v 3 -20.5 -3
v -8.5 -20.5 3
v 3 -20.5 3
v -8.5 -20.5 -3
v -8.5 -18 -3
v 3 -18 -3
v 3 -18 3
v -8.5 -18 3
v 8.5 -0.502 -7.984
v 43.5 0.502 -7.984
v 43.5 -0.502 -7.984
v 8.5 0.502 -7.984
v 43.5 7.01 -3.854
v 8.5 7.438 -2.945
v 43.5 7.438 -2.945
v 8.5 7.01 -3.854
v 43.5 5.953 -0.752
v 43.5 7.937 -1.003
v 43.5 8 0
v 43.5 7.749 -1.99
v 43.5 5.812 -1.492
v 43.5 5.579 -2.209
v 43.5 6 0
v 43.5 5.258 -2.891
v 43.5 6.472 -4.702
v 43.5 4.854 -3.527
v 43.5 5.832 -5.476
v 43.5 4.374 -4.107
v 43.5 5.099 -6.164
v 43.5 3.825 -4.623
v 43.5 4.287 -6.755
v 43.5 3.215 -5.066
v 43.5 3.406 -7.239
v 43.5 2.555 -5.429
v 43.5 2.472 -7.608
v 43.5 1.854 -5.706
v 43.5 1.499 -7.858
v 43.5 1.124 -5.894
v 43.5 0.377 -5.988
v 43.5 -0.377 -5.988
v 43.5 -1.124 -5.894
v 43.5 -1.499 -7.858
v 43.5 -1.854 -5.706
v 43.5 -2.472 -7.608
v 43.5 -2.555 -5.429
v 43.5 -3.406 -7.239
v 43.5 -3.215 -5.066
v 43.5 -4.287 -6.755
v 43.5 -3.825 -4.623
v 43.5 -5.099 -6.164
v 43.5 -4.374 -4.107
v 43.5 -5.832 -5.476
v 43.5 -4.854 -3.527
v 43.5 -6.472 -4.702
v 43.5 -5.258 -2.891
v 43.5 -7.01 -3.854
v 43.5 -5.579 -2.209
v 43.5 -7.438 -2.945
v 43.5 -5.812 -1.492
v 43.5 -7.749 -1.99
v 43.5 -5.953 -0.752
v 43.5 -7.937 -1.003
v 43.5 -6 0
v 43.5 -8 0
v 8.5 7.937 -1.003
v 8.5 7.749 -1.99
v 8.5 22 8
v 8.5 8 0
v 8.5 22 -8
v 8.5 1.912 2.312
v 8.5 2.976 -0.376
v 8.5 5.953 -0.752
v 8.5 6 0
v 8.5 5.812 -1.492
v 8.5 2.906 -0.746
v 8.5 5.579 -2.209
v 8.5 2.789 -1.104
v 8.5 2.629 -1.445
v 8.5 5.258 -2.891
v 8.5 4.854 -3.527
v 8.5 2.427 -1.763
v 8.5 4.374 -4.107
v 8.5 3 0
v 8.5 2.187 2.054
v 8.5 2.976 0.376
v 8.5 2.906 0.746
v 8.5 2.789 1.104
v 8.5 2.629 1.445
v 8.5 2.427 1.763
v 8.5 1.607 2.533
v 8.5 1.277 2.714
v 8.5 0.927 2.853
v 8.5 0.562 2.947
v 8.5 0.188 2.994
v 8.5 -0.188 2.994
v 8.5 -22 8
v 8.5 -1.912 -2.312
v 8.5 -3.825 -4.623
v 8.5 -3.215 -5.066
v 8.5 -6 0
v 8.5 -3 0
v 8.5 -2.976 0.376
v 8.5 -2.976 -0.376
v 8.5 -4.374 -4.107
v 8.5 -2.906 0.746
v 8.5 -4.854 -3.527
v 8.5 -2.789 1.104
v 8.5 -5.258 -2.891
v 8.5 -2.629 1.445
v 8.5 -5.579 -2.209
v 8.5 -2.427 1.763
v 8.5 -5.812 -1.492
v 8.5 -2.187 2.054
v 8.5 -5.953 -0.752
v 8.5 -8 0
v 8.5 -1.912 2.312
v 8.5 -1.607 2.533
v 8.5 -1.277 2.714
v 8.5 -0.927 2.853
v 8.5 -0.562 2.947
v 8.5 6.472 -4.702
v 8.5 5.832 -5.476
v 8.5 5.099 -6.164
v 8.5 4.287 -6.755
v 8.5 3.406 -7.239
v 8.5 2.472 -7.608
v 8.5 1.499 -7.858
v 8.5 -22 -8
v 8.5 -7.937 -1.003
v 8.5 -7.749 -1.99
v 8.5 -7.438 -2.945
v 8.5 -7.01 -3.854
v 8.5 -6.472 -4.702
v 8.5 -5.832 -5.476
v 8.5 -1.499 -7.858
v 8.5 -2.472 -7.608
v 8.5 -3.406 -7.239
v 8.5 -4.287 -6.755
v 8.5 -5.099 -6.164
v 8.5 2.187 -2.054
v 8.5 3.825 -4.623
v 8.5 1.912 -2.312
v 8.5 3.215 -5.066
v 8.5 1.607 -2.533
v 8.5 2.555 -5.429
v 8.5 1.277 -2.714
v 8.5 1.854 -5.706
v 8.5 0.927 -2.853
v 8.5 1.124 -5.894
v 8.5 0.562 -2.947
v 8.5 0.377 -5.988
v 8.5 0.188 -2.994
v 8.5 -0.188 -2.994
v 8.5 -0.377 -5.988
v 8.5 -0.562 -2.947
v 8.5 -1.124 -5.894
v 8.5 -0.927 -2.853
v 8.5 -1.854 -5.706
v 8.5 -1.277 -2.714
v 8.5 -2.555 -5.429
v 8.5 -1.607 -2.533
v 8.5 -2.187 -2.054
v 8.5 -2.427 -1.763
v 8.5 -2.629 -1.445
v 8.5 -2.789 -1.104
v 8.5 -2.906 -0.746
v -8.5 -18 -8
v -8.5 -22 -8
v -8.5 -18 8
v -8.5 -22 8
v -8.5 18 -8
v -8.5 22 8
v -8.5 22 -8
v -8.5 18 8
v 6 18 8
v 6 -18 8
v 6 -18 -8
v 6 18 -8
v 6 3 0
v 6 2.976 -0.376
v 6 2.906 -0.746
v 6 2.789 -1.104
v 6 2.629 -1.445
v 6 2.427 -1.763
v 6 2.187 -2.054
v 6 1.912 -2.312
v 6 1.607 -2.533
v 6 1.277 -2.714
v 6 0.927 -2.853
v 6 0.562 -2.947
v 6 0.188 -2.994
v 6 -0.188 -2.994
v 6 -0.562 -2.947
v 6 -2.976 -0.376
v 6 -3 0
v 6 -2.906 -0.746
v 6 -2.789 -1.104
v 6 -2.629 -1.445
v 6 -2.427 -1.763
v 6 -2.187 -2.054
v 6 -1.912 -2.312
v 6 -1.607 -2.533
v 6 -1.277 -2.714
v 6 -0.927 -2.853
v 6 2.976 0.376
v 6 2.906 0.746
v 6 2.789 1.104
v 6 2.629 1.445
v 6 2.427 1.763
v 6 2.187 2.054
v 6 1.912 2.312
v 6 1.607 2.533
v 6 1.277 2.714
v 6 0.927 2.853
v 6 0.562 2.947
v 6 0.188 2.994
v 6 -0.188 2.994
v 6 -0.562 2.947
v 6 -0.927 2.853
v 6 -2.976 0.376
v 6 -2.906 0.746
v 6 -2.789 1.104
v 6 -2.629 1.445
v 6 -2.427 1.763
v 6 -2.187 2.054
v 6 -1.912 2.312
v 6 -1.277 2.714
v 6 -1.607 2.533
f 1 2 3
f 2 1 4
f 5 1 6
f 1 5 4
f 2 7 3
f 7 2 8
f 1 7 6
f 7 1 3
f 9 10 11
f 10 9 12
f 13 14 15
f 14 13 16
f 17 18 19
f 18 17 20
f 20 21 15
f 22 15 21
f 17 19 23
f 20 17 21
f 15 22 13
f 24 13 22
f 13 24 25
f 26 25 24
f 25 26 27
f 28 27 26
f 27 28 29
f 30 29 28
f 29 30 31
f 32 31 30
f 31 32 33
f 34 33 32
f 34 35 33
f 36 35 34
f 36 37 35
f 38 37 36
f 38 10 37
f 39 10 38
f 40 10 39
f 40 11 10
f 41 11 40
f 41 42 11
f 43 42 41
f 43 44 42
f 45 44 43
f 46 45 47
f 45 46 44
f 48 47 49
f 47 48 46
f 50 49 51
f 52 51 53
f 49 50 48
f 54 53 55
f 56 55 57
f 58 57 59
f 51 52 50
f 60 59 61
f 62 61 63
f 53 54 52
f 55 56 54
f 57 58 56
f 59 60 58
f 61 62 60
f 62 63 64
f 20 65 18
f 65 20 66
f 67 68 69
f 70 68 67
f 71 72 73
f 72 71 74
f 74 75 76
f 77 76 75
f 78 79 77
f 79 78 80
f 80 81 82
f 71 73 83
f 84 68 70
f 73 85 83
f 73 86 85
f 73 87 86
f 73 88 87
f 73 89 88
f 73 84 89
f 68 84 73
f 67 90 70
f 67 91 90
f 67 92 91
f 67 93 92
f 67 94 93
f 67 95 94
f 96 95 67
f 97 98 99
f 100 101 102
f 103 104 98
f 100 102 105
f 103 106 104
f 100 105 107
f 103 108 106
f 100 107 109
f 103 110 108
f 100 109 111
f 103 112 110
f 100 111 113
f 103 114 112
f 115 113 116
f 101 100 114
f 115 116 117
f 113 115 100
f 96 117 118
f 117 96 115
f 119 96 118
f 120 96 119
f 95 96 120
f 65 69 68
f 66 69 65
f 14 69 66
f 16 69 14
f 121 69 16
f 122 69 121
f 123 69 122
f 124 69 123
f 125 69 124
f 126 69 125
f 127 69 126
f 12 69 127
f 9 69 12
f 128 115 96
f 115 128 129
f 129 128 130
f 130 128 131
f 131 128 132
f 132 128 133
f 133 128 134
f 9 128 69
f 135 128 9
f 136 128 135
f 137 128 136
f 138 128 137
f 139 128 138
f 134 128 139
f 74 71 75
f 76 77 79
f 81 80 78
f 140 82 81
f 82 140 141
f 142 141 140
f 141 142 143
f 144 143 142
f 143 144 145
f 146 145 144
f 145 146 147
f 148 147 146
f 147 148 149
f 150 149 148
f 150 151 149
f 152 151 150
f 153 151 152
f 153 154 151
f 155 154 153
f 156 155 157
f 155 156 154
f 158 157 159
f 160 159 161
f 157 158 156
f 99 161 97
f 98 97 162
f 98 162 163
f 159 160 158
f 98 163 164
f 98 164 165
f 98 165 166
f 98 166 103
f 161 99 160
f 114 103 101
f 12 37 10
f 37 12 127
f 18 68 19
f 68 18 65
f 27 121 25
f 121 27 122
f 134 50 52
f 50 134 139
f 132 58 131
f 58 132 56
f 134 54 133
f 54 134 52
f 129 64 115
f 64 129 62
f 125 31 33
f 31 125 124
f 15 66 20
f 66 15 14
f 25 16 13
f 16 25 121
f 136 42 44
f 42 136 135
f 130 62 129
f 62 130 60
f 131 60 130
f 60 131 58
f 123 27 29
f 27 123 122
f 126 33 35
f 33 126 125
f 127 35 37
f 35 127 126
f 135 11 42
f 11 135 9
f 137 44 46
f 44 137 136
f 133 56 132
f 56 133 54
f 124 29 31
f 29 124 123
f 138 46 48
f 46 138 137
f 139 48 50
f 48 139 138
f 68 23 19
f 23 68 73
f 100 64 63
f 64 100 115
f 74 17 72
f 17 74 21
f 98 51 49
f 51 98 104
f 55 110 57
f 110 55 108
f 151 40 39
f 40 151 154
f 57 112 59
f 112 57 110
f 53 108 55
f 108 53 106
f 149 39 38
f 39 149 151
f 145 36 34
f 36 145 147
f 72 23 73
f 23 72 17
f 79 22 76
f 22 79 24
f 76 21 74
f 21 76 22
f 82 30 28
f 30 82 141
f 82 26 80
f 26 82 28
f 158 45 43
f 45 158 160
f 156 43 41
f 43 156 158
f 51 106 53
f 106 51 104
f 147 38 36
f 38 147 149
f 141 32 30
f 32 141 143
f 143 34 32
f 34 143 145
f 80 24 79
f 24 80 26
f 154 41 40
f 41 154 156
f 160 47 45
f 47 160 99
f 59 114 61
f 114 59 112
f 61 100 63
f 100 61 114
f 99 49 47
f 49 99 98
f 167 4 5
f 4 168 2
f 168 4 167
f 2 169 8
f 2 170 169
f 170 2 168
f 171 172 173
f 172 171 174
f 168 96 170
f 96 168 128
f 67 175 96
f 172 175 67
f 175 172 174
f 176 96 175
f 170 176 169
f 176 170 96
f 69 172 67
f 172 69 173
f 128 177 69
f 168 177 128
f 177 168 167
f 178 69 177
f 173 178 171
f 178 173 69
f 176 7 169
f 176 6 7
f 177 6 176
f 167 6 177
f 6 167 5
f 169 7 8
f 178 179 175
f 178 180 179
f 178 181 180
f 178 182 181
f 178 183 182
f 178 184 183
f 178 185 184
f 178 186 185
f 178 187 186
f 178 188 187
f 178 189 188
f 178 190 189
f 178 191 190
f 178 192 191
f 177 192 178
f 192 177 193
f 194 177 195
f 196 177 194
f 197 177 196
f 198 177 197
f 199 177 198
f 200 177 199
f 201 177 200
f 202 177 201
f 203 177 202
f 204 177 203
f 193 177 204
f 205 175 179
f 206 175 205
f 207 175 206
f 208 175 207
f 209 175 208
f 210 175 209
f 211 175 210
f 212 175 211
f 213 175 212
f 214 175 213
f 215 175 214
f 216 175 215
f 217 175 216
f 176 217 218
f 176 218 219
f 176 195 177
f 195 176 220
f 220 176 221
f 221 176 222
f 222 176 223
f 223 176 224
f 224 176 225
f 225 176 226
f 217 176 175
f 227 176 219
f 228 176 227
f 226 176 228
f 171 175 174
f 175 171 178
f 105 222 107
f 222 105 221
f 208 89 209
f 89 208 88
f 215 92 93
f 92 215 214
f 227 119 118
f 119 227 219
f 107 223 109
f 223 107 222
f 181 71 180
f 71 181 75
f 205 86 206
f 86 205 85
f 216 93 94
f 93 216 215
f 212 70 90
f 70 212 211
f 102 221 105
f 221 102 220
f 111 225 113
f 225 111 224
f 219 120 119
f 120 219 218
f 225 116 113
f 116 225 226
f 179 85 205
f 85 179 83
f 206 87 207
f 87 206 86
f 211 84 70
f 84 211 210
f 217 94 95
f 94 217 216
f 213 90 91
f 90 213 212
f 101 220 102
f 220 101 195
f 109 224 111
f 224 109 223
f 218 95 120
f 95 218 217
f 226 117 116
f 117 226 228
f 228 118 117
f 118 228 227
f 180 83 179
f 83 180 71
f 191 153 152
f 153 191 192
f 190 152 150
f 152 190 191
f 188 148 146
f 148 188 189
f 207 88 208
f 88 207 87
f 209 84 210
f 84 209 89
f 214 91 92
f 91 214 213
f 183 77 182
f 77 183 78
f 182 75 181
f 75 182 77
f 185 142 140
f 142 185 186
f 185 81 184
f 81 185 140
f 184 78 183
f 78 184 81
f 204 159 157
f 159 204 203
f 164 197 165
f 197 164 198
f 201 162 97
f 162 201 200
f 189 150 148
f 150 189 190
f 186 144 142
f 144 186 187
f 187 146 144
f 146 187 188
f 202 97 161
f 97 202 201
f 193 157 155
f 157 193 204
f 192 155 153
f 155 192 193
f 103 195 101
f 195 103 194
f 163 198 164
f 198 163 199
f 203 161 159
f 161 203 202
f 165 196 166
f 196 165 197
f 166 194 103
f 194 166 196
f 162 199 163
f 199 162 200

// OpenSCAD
// for larger diode with lens
module mount() {
    difference() {
        cube([6+11,16,44],true);
        translate([-3,0,0]) cube([7+11,16,36],true);
        translate([-33/2+8/2,0,34/2]) rotate([0,0,90]) union() {
            translate([0,0,0.5]) cylinder(r=8/2,h=3,$fn=40);
            translate([0,0,-1.1]) cylinder(r=1.5,h=6,$fn=40);
            translate([0,-6.5,1.5]) cube([6,18,4],true);
        }
        translate([-33/2+8/2,0,-33/2-6]) rotate([0,0,90]) cylinder(r=1.5,h=6,$fn=40);
        translate([2.5,0,0]) rotate([0,90,0]) cylinder(r=3,h=14+11,$fn=50);
    }
    translate([1.5+7,0,0]) rotate([0,90,0]) difference() {
        cylinder(r=8,h=35,$fn=50);
        translate([0,4,7]) cube([17,8,58],true);
        cylinder(r=6,h=35,$fn=50);
    }
}
rotate([90,0,0]) mount();
